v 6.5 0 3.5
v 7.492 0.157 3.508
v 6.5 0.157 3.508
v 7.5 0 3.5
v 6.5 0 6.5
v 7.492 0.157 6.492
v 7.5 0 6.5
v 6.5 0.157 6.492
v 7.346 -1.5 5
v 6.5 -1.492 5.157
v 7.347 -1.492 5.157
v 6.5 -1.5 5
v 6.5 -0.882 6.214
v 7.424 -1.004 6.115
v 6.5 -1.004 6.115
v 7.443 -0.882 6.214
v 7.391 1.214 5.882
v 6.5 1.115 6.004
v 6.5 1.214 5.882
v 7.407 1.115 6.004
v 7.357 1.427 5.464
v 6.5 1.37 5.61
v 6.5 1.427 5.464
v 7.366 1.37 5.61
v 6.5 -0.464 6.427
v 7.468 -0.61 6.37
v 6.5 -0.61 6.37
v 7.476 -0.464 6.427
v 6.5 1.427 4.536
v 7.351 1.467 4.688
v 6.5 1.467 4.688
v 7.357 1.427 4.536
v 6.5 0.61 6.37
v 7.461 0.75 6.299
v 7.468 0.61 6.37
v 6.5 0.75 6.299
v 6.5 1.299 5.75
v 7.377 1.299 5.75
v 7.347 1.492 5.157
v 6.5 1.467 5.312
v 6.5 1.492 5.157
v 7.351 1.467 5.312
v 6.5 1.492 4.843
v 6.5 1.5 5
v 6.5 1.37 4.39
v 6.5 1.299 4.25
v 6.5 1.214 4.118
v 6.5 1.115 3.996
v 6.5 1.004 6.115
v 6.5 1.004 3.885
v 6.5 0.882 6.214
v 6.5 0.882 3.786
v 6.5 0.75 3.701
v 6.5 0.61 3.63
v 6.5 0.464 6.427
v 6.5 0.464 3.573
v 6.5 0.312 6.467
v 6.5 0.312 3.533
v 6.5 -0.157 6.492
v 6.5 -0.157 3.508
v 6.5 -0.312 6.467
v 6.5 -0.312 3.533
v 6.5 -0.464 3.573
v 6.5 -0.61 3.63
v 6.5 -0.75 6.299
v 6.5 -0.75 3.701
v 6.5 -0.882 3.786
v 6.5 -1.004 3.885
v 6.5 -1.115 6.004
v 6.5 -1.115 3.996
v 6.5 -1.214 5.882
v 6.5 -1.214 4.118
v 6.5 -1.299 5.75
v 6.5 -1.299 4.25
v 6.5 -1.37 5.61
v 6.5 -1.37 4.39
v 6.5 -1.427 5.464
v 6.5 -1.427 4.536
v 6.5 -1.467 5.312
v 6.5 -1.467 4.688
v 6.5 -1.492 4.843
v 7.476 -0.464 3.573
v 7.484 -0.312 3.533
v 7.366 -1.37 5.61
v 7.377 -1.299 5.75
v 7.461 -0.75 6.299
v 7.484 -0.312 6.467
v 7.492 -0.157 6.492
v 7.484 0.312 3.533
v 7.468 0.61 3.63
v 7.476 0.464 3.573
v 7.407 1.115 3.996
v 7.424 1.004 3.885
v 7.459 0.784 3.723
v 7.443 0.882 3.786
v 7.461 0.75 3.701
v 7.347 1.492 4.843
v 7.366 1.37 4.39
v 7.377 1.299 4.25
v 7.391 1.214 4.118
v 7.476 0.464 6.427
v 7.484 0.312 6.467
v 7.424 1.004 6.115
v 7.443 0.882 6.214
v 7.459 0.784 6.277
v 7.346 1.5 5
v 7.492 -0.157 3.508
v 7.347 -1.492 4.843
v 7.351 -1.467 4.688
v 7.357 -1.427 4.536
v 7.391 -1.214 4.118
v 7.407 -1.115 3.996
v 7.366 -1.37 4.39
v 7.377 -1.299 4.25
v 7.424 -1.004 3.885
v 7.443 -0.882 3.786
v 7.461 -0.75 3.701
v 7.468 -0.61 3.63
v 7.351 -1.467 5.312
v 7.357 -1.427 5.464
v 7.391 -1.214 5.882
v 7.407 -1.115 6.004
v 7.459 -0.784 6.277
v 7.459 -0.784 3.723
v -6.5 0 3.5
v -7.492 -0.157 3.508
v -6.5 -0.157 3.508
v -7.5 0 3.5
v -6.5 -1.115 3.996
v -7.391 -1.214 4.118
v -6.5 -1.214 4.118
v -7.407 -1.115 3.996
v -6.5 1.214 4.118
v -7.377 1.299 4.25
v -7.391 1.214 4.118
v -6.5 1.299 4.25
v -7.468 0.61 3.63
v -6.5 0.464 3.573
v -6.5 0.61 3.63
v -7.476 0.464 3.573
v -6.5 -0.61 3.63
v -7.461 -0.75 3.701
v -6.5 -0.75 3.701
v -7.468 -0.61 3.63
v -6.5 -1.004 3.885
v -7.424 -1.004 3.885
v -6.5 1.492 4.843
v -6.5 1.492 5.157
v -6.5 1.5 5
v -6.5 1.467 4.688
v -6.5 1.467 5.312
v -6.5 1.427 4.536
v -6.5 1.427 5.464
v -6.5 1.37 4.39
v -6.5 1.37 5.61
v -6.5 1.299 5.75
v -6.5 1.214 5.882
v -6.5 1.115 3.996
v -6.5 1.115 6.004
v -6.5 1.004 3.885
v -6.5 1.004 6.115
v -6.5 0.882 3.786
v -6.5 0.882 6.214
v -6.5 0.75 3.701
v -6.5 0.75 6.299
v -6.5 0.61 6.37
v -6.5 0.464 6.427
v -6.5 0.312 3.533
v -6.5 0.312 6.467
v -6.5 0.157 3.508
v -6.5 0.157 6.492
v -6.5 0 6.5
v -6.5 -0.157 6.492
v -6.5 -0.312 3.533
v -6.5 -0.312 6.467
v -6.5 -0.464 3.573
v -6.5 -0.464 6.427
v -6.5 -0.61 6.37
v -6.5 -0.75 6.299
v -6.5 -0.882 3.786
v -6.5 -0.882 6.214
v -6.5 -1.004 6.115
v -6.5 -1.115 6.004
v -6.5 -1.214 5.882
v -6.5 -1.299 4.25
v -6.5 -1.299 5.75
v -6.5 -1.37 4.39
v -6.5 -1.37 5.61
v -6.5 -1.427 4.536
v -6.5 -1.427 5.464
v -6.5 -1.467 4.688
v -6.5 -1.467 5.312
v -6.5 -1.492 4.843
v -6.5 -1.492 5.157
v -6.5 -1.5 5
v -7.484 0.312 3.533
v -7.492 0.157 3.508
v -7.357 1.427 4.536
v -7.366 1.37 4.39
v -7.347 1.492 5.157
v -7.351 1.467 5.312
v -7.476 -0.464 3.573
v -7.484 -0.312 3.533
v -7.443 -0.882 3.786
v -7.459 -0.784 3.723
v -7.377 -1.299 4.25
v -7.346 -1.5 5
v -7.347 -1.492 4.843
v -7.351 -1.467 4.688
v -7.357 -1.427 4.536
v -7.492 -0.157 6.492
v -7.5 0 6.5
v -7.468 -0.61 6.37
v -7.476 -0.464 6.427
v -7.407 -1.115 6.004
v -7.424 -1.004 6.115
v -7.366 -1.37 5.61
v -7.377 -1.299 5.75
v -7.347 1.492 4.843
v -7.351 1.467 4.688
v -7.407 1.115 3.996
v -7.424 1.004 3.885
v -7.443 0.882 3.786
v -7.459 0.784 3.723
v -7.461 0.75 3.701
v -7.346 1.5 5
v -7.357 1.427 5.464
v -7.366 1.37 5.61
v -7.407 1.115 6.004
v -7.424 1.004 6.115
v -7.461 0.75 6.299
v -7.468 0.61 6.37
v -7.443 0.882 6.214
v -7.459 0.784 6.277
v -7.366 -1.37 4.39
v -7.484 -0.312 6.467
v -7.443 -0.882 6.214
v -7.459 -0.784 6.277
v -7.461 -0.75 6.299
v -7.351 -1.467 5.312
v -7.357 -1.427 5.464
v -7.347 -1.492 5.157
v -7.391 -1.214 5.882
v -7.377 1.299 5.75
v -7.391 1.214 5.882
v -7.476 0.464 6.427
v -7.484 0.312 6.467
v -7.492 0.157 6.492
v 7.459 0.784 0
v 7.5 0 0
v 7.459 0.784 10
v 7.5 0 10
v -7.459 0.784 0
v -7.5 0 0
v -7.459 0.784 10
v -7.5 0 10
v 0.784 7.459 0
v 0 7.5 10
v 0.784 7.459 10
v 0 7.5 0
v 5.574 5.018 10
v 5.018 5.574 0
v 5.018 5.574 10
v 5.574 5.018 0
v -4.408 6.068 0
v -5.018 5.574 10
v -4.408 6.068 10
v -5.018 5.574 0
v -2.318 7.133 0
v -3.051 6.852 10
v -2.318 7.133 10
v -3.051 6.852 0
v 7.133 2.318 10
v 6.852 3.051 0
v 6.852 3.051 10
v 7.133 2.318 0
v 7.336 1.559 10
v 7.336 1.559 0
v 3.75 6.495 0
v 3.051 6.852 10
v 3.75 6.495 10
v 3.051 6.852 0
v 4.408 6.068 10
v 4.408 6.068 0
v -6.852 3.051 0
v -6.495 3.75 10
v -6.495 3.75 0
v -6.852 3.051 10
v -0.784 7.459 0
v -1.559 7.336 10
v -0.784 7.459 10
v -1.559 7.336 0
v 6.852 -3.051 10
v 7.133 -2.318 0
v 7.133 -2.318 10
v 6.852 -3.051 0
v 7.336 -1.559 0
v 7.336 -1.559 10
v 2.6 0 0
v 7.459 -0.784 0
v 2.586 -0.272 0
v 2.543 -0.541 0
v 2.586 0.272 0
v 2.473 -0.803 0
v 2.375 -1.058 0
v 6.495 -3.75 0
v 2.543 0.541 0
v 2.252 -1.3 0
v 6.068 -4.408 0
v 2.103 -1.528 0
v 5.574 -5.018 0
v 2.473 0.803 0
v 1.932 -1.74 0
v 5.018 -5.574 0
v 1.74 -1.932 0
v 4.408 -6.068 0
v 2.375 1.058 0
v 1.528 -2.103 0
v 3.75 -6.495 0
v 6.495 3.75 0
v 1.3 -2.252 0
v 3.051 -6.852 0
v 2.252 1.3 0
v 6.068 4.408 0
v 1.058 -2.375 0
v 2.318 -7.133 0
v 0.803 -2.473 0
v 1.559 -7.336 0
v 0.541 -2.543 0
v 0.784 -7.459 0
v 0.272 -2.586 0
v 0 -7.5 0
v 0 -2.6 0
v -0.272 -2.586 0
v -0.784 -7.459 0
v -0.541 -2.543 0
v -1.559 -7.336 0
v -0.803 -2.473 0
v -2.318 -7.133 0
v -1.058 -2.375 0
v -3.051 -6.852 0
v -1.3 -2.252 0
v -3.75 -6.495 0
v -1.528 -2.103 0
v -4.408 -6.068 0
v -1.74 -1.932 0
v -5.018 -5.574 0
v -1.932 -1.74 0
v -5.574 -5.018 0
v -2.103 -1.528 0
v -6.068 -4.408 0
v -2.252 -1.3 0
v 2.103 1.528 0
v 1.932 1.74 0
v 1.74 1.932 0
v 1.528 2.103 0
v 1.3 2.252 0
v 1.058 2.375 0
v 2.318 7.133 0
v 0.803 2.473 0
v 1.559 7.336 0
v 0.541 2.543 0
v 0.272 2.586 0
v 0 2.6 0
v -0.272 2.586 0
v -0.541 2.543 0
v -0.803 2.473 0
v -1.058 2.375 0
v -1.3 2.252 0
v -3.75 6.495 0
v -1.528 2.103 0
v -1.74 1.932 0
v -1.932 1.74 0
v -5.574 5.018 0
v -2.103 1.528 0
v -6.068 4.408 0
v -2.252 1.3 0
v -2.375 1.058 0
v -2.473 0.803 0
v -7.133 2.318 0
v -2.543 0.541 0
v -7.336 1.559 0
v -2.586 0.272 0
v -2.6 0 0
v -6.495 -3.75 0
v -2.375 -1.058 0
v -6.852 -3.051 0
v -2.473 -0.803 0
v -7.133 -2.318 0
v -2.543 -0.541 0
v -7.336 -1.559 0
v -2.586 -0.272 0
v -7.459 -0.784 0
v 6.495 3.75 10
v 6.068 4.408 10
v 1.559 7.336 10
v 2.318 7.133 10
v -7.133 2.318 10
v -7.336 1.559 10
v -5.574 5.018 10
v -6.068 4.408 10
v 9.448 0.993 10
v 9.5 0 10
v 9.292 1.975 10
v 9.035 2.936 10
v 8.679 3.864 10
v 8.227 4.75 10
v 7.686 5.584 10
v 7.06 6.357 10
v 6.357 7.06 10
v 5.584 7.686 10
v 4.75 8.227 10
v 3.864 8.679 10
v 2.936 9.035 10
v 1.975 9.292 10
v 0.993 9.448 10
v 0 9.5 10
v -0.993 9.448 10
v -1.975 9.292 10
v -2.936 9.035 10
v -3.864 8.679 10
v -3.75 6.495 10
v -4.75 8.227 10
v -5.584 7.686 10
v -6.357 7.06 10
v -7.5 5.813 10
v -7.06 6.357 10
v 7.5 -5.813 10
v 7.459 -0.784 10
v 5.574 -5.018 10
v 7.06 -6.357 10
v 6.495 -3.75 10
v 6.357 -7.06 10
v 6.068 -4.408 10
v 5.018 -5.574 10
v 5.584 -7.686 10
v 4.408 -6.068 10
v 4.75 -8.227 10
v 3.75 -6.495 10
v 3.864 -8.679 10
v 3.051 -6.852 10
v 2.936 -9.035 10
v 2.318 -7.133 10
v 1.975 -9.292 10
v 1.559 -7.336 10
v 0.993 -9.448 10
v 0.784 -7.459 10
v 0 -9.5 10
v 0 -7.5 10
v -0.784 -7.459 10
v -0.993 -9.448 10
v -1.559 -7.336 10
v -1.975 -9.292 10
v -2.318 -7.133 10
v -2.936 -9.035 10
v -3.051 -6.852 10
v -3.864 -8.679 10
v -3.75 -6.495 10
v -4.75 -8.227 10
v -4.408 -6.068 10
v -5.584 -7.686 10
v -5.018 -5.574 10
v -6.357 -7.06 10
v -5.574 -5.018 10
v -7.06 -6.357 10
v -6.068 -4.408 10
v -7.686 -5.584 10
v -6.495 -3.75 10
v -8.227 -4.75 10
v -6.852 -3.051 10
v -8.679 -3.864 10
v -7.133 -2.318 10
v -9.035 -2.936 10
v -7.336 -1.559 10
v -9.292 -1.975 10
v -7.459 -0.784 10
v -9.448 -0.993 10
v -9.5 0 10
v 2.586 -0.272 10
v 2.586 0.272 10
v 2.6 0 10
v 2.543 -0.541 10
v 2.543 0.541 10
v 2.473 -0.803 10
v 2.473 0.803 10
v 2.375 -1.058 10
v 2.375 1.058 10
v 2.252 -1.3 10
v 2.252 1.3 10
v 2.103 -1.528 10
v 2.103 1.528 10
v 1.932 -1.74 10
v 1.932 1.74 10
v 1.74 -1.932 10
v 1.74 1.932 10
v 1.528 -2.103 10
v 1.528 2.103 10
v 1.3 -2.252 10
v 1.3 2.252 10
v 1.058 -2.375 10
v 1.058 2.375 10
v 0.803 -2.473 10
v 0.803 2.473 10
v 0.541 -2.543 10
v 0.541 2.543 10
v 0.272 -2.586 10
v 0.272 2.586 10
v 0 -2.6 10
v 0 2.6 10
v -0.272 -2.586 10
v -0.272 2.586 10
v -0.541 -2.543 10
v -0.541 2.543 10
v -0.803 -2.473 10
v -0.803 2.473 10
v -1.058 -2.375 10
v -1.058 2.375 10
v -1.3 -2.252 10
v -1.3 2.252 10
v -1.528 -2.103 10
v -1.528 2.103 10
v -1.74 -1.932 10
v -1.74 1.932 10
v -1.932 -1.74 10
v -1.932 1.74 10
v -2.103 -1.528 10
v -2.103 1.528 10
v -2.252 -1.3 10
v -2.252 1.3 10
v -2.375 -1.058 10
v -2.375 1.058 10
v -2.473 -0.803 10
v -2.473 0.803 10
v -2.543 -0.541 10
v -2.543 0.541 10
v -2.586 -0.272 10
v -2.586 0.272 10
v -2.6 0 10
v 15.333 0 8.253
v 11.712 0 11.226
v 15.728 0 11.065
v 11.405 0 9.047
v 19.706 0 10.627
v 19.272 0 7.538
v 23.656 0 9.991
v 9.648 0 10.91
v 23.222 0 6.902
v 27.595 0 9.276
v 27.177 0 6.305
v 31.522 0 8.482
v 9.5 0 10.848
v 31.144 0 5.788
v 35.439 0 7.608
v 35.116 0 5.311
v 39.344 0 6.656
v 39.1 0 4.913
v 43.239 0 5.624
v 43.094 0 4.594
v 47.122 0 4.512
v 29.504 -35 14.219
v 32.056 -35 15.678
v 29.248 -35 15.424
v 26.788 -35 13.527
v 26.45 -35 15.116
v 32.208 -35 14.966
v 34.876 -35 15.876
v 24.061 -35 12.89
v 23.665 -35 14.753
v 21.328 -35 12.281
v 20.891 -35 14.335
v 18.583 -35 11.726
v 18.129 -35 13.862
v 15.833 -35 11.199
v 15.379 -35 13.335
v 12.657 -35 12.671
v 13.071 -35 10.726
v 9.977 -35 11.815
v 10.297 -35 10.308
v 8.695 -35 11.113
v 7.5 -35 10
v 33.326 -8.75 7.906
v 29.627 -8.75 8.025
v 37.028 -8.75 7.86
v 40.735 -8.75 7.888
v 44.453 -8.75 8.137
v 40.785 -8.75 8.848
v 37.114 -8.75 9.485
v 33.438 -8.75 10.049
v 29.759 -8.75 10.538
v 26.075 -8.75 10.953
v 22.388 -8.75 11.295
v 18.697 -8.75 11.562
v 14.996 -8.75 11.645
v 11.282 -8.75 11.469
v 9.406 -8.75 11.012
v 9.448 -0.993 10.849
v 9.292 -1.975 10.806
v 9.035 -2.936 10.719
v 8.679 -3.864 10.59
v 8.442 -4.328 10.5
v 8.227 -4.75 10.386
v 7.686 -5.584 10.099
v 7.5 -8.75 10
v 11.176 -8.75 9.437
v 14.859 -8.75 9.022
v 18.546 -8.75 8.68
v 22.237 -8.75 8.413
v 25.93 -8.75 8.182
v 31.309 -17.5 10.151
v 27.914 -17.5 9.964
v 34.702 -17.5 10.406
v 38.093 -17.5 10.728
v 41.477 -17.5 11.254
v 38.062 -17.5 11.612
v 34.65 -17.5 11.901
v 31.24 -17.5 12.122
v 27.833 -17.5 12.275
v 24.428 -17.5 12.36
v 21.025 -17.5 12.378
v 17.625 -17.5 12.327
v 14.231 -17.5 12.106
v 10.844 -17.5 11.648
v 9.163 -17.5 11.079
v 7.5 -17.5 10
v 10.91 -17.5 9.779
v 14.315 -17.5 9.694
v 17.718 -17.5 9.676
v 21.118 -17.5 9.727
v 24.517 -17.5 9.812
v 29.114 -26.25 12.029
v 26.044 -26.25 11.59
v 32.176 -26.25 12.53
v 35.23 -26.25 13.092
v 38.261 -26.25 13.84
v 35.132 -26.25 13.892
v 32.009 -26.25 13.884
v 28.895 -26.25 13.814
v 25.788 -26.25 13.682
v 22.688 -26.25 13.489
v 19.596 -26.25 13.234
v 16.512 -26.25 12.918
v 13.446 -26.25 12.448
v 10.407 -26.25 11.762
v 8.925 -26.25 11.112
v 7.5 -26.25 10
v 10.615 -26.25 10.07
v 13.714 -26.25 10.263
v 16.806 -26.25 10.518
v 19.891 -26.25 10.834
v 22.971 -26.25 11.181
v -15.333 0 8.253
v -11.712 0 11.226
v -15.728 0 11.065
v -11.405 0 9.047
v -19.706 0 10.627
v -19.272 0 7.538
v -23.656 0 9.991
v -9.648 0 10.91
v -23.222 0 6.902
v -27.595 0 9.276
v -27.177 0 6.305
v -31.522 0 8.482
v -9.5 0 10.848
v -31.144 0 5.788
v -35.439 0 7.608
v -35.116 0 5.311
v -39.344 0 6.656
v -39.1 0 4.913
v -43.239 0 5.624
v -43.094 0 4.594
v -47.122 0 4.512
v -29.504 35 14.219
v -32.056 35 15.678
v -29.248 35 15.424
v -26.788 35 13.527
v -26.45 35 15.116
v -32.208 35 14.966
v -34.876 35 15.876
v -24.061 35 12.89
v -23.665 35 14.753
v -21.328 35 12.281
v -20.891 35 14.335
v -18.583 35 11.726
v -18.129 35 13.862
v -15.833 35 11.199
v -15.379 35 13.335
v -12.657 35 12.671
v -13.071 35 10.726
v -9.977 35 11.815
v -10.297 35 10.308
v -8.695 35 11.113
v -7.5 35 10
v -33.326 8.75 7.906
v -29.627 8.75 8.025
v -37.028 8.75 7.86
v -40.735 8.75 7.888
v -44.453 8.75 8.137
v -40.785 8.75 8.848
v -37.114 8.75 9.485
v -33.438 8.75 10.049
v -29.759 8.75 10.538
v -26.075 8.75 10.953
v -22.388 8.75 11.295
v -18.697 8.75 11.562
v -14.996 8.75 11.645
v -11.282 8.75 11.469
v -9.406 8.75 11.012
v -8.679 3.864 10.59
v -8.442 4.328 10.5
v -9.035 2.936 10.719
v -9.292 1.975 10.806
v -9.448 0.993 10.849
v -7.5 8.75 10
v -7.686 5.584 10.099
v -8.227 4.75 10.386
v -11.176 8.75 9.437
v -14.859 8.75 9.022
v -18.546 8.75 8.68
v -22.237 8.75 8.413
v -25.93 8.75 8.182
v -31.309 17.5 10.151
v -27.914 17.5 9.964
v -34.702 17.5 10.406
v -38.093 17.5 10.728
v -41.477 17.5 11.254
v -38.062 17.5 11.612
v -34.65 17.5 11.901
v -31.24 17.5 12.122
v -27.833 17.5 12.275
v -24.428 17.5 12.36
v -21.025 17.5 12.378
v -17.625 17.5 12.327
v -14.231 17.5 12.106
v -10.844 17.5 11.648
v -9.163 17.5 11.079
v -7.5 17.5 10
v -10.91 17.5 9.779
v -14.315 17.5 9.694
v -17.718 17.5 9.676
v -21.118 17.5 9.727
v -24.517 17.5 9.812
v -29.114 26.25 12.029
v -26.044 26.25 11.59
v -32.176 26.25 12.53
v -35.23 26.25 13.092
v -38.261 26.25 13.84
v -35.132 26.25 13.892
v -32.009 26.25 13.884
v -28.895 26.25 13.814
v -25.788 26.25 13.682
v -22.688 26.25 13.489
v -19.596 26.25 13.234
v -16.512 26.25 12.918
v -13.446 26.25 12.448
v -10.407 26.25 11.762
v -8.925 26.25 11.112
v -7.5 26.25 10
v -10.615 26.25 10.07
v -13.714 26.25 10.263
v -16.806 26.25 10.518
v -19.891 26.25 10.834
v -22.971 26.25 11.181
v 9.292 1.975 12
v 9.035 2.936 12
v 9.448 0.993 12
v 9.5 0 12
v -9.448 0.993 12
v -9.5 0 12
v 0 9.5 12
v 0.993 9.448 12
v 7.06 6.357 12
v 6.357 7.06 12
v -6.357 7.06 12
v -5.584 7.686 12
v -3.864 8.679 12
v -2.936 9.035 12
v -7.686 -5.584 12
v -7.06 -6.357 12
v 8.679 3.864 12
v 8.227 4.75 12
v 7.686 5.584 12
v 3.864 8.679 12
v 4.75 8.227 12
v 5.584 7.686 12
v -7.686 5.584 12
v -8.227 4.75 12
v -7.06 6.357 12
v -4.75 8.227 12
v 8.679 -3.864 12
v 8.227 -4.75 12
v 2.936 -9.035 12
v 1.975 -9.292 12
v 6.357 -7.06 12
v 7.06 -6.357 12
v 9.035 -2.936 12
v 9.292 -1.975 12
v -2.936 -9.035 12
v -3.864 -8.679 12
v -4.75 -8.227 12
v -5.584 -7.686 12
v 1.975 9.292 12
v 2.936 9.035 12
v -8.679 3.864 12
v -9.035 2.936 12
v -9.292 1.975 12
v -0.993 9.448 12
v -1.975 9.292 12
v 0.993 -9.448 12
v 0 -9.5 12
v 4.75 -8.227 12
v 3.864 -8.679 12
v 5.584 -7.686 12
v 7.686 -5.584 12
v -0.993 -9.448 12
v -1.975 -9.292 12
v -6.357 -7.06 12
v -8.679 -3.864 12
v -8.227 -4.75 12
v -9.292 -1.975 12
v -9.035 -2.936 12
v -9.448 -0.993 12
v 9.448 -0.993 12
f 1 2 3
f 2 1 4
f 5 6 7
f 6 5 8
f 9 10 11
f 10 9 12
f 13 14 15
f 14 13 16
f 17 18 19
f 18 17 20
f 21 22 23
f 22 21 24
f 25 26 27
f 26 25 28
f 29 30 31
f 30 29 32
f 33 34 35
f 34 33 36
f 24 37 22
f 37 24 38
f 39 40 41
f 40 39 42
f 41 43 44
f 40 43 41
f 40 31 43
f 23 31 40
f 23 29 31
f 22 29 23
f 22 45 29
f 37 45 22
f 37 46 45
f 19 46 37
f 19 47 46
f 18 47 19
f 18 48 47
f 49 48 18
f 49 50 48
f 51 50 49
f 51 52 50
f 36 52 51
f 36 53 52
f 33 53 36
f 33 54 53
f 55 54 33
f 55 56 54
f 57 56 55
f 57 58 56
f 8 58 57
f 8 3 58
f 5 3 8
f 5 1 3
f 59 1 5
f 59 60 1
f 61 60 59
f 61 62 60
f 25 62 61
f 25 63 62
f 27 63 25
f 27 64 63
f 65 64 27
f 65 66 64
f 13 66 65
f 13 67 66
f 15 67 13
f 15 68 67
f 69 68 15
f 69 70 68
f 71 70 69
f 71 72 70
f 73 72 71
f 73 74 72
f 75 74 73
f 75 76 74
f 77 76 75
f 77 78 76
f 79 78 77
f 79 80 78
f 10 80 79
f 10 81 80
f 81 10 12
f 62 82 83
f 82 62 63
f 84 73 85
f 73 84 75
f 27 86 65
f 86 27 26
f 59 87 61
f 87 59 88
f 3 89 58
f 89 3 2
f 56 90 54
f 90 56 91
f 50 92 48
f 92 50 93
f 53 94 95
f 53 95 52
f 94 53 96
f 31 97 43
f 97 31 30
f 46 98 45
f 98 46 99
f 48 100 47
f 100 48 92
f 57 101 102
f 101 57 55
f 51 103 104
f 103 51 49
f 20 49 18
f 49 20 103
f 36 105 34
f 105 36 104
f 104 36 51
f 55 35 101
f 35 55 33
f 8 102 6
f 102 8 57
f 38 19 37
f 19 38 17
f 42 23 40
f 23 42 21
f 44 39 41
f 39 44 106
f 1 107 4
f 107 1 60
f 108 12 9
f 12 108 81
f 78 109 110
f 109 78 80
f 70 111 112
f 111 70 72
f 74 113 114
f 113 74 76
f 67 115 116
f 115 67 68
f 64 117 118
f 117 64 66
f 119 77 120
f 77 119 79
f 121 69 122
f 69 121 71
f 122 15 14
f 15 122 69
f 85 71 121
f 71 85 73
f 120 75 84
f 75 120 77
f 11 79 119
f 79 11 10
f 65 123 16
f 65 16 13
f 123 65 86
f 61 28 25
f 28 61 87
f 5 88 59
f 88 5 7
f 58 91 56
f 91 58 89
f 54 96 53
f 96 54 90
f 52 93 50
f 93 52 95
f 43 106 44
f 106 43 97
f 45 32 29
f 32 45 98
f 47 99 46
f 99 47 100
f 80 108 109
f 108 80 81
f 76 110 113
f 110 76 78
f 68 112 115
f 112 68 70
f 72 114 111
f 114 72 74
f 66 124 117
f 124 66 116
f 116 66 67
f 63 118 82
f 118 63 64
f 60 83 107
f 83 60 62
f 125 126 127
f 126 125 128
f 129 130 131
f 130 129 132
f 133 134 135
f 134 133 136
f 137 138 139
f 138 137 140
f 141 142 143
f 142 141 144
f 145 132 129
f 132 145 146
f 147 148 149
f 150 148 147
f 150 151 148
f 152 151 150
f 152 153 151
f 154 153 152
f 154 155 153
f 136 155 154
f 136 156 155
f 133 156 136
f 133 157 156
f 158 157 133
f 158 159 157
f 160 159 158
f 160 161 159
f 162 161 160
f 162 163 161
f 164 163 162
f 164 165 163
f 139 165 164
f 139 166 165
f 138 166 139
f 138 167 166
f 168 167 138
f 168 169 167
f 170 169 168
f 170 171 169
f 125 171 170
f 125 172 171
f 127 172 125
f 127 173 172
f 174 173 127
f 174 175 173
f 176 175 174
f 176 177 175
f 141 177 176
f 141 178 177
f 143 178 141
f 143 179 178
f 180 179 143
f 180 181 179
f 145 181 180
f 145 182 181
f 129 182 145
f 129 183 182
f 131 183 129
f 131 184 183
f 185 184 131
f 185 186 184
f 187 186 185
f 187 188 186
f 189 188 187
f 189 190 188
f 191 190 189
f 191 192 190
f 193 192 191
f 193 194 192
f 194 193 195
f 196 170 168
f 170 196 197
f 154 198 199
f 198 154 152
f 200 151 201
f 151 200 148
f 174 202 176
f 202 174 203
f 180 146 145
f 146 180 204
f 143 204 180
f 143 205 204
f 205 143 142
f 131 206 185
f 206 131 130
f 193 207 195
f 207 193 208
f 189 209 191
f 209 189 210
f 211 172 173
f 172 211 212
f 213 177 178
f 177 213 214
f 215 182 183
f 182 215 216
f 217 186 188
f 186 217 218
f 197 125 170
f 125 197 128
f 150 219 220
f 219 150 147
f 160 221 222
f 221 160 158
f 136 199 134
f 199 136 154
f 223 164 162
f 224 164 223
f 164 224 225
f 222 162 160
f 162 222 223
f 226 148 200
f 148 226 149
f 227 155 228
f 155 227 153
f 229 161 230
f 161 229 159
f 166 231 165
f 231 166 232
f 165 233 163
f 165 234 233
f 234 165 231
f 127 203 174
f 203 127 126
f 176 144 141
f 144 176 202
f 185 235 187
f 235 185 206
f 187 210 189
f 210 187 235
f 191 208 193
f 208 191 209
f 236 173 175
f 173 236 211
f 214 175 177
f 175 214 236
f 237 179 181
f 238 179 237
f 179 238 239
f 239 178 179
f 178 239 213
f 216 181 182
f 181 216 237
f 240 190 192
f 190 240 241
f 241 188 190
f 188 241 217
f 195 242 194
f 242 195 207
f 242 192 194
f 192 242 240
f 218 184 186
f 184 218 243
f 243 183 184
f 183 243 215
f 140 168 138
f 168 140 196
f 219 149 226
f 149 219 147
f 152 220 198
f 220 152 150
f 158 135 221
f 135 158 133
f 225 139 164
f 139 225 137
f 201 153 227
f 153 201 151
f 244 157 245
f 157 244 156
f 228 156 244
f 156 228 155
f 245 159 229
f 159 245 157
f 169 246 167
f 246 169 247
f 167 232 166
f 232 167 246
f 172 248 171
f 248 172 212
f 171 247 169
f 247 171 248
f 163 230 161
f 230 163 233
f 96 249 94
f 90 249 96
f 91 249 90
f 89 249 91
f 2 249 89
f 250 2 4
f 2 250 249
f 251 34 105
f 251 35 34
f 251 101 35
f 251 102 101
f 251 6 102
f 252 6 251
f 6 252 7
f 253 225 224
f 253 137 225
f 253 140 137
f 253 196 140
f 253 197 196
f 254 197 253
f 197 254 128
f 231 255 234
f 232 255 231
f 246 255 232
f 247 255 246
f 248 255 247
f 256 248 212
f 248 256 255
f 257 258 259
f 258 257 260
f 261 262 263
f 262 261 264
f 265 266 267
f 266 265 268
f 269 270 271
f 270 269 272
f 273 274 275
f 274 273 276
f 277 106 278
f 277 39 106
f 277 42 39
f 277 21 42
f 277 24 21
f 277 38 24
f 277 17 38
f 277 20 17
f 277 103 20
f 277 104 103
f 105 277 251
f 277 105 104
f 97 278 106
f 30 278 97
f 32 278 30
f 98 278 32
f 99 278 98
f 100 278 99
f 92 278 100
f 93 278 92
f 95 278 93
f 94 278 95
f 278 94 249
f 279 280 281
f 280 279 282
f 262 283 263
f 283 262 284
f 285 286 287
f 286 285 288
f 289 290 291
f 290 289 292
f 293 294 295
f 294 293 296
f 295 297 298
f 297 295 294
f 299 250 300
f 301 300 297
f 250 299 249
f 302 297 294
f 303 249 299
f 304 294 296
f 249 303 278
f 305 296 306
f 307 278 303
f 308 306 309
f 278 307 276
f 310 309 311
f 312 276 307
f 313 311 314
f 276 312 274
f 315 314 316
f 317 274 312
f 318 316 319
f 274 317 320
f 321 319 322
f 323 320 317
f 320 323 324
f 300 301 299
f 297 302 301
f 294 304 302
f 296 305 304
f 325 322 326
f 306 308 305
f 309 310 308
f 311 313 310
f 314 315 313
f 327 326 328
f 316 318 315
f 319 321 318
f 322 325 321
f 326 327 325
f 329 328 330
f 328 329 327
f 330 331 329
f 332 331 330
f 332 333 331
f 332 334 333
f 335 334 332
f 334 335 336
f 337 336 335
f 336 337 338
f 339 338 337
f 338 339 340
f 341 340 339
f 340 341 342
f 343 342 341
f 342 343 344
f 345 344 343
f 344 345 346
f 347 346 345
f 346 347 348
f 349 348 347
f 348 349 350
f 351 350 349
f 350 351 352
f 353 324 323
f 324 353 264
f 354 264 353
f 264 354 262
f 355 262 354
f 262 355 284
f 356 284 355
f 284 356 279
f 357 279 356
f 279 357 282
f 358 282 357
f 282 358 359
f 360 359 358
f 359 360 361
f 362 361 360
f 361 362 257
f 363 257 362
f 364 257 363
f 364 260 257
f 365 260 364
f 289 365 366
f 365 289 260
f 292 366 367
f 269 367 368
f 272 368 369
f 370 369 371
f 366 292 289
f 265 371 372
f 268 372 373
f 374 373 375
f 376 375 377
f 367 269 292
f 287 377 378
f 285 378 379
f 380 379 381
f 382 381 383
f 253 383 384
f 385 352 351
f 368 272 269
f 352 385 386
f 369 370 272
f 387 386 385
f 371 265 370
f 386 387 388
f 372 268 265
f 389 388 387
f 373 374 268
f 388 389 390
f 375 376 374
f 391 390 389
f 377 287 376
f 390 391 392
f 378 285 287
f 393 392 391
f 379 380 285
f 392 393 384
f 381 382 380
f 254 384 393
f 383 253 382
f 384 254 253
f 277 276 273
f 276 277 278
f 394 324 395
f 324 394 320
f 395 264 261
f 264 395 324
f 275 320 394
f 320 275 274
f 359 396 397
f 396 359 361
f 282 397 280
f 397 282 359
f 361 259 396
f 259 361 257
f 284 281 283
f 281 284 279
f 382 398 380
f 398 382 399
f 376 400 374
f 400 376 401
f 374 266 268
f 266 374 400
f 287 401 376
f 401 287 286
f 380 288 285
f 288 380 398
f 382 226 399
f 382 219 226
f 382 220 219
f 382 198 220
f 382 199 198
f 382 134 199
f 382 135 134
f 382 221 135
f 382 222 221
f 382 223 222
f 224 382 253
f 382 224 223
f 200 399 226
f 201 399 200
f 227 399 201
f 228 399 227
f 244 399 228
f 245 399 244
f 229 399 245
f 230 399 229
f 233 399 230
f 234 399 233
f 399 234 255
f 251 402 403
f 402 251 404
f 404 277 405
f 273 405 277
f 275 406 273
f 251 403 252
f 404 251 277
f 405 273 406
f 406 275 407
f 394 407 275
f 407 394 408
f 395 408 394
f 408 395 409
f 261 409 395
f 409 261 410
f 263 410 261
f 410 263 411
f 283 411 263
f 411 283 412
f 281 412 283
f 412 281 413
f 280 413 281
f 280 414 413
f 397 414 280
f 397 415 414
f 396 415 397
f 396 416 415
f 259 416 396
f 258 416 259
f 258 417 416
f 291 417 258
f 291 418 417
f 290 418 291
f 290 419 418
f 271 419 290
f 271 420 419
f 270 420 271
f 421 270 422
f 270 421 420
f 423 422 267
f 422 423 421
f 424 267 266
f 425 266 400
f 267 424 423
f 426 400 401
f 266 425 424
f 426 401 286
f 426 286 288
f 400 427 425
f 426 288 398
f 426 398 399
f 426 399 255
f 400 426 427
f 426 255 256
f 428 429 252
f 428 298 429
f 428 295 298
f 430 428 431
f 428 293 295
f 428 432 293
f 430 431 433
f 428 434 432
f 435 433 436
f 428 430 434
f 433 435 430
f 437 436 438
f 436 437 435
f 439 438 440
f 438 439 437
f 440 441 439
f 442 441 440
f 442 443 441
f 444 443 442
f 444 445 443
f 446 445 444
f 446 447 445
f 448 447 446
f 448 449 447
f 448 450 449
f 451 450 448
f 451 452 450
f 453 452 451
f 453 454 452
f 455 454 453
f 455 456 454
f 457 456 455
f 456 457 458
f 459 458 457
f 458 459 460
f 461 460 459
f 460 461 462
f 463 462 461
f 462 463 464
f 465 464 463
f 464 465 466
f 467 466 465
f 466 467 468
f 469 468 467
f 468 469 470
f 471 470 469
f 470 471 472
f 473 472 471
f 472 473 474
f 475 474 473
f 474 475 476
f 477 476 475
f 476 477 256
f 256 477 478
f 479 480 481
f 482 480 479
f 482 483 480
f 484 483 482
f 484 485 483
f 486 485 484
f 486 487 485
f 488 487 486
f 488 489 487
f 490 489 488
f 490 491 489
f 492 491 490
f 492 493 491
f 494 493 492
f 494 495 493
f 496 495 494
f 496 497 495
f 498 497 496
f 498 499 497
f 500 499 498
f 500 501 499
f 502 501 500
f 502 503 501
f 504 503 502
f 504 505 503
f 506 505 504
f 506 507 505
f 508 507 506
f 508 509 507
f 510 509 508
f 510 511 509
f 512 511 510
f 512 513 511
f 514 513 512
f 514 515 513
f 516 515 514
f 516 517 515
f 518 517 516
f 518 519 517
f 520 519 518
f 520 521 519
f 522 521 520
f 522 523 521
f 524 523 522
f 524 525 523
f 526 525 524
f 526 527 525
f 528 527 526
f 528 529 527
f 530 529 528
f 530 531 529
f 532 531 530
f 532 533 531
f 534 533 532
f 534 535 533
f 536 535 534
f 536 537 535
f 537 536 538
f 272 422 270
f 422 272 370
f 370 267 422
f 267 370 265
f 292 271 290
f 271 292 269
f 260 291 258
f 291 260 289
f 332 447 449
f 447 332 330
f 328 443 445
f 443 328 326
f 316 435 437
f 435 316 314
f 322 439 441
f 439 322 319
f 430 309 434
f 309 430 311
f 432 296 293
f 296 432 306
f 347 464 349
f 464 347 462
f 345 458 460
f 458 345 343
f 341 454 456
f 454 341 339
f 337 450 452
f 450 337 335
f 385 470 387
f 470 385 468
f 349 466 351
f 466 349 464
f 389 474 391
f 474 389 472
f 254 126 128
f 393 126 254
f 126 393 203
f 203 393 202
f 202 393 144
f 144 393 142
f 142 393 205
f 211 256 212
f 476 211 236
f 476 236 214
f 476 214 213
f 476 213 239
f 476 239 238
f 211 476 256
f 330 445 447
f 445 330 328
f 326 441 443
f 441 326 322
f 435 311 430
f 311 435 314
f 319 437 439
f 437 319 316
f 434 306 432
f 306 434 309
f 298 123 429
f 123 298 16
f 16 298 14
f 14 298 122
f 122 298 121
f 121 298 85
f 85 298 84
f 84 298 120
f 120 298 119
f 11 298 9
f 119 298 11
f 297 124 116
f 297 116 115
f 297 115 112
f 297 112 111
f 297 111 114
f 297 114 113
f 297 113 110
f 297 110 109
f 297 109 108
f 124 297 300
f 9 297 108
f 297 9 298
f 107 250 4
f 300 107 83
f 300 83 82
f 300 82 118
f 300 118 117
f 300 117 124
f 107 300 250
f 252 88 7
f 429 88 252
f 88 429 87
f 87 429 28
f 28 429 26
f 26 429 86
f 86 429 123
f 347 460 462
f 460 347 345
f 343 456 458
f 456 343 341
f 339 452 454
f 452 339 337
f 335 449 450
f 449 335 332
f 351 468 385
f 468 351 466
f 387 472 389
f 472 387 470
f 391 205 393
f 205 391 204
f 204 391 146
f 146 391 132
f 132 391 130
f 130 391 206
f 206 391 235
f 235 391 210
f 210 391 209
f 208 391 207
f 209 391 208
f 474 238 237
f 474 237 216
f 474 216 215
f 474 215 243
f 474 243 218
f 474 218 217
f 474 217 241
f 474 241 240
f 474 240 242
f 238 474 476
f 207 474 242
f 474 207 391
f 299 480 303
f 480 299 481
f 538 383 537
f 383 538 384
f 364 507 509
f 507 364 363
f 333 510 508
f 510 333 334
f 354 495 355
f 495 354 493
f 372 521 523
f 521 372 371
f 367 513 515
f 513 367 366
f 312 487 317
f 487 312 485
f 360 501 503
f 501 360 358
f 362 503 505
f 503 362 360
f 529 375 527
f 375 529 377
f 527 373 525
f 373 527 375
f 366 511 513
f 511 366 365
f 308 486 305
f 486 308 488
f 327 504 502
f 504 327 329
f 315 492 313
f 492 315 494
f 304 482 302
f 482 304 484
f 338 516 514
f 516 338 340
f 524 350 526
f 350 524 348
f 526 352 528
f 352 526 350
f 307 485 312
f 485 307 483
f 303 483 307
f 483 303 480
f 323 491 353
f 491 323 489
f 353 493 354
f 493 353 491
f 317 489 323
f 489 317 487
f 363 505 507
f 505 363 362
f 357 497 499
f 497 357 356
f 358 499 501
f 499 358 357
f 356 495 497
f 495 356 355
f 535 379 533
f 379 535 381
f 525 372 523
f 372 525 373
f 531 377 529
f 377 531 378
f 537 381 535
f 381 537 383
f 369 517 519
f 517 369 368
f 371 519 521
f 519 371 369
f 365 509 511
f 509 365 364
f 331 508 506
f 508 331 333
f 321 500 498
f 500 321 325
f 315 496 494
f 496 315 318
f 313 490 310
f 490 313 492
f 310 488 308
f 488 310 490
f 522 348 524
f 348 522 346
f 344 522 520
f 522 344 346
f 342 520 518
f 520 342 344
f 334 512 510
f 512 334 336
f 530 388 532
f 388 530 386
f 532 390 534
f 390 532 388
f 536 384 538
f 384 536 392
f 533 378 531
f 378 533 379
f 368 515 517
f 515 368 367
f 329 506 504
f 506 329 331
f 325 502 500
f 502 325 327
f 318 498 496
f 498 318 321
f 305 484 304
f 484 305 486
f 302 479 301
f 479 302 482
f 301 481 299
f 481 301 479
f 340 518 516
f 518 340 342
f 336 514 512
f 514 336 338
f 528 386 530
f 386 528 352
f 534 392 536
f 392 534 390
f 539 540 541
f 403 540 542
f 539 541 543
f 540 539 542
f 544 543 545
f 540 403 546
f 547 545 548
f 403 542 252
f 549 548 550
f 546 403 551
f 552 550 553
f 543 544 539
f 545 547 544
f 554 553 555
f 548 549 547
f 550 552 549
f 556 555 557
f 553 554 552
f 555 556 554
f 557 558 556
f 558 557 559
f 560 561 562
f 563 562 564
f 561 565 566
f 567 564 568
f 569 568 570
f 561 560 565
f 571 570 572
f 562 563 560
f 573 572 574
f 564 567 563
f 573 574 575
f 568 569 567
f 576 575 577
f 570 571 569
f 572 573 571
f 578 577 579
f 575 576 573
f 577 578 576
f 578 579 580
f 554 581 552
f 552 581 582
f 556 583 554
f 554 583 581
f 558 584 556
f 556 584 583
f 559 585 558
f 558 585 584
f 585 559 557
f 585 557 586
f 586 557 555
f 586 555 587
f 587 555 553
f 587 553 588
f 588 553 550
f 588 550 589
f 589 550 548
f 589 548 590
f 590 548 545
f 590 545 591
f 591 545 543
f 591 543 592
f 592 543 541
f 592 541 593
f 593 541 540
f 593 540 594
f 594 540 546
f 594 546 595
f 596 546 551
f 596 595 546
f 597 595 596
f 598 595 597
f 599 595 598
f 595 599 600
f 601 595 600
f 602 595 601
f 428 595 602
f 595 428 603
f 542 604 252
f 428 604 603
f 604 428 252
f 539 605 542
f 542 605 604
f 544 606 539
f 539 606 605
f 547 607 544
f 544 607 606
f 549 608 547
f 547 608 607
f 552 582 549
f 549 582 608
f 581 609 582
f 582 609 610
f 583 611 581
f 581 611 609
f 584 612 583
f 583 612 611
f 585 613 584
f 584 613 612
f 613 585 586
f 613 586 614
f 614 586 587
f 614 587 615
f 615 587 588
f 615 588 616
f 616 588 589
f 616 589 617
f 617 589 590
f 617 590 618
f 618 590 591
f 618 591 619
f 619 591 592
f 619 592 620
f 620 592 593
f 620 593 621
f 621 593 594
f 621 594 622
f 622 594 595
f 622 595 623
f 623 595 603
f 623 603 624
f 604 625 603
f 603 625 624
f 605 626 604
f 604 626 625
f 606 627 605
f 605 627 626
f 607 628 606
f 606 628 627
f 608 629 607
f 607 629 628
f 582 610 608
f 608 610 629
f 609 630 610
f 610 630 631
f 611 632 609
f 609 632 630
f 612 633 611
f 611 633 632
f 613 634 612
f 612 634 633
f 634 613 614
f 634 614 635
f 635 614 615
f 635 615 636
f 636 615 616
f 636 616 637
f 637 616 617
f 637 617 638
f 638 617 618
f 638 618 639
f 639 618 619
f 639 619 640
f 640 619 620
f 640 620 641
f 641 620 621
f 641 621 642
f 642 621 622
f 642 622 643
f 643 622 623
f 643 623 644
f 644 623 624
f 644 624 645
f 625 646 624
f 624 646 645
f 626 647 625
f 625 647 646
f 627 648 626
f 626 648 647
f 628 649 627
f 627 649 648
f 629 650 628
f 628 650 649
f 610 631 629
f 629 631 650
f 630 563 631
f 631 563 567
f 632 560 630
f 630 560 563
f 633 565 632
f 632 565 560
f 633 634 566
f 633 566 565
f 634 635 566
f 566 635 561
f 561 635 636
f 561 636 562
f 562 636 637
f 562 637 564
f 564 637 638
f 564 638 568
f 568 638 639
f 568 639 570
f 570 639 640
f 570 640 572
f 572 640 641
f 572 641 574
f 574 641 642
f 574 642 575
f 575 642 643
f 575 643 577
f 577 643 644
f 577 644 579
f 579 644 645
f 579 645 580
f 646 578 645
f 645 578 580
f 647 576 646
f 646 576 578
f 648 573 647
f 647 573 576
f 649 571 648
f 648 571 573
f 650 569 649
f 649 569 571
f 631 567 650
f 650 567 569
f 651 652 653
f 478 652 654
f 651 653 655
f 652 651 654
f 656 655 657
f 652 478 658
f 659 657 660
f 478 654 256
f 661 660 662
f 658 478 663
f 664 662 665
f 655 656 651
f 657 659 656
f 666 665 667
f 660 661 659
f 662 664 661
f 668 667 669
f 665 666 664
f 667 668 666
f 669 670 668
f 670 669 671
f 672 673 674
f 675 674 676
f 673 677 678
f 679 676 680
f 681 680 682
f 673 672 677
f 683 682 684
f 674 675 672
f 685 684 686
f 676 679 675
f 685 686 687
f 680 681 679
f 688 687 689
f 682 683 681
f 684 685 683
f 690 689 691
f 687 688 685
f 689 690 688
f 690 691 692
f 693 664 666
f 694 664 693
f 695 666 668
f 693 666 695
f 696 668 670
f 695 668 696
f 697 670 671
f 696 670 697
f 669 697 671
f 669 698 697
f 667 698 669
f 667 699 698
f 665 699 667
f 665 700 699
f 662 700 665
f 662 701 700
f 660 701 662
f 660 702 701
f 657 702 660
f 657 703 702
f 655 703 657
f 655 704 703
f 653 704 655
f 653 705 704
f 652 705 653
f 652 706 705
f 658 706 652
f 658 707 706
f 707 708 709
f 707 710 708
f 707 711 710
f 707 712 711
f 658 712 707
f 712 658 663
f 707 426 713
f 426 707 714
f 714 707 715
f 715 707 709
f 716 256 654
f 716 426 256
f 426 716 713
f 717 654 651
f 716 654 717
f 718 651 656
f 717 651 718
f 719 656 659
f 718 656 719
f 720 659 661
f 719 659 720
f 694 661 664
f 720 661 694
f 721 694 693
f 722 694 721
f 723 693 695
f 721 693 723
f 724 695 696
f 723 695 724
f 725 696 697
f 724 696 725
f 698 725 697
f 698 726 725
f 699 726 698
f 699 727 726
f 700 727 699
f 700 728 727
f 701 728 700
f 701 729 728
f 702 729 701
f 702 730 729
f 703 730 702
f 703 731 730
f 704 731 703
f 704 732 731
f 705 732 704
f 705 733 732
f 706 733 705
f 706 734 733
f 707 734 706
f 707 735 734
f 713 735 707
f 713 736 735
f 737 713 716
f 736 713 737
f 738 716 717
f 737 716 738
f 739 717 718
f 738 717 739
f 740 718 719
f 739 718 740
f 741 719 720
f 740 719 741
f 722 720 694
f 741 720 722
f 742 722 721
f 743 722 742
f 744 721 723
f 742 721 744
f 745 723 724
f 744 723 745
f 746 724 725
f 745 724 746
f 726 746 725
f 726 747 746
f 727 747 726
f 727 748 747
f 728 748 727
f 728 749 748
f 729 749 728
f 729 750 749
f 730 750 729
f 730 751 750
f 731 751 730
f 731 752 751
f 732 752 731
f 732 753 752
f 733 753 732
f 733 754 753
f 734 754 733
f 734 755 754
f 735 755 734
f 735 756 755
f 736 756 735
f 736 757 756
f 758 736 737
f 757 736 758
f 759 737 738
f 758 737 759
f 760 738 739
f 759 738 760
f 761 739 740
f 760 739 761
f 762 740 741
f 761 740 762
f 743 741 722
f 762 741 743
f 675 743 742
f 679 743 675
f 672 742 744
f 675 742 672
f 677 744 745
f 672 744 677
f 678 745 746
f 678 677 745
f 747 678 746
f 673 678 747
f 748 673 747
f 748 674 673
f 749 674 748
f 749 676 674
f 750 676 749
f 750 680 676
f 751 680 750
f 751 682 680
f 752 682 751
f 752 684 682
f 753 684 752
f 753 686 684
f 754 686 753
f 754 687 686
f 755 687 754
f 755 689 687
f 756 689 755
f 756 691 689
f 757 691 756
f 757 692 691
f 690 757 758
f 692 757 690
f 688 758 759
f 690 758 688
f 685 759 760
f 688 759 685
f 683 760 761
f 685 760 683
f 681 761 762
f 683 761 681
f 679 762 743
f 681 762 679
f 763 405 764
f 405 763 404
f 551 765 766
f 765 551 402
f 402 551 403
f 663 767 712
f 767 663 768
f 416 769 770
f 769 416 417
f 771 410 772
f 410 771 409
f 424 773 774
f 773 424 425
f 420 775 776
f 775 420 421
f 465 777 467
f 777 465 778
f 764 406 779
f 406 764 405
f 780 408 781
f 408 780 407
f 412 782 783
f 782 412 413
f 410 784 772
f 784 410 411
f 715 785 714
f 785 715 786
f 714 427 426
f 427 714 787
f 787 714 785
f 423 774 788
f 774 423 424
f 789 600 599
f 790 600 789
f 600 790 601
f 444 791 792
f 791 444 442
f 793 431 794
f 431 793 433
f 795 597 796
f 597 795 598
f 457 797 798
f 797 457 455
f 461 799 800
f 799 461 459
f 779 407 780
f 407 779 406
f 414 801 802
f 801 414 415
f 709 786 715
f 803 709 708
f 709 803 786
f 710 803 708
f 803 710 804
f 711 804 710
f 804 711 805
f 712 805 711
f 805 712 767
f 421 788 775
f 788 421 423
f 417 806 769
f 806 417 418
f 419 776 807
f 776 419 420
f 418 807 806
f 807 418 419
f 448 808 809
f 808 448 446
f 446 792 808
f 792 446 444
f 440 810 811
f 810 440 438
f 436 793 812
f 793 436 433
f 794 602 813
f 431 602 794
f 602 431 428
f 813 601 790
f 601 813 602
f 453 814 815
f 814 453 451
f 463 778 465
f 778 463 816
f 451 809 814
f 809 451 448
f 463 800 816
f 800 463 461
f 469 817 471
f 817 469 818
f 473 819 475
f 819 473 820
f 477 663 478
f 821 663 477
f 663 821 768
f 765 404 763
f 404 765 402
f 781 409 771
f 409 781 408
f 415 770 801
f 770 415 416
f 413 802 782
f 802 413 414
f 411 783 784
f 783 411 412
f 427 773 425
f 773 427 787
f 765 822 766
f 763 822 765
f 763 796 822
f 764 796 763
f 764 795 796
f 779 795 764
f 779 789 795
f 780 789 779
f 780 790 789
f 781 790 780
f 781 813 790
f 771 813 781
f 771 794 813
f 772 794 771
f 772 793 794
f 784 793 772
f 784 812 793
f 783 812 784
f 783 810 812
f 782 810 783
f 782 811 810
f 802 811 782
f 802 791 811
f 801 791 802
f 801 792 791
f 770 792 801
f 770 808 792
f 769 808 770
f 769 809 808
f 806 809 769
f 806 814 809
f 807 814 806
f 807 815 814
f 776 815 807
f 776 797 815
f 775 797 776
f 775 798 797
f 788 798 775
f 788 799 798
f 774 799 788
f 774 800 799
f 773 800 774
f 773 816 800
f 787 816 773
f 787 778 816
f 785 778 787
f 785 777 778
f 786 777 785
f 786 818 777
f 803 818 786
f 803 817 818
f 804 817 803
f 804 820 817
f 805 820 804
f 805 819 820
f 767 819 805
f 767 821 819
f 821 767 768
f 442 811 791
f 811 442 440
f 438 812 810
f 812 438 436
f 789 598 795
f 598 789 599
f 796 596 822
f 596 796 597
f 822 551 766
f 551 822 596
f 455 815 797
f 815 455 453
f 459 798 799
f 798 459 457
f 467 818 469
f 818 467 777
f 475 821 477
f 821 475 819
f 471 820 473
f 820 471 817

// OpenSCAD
/*
 * COMPLETE MOTOR + IMPELLER ASSEMBLY
 * For CFD fluid testing and visualization
 * 
 * This model includes:
 *   - Brushless motor (2204-2206 size)
 *   - Motor shaft (5mm)
 *   - Impeller hub
 *   - 3 impeller variants (bladeless, AI-blades, hybrid)
 *   - Mounting plate
 * 
 * Usage:
 *   - Render full assembly: F6
 *   - Export for CFD: Set EXPORT_MODE = "impeller_only"
 *   - Change design: Set IMPELLER_TYPE = "bladeless" | "bladed" | "hybrid"
 */

// ============================================================================
// CONFIGURATION PARAMETERS (AI-Optimizable)
// ============================================================================

// General Settings
$fn = 60;  // Resolution for CFD export (increase to 100 for final)

// Export Mode
EXPORT_MODE = "impeller_only";  // Options: "full_assembly", "impeller_only", "motor_only"

// Impeller Type
IMPELLER_TYPE = "bladed";  // Options: "bladeless", "bladed", "hybrid"

// Motor Specifications (2204-2206 brushless)
MOTOR_DIAMETER = 28;         // mm
MOTOR_HEIGHT = 25;           // mm
MOTOR_SHAFT_DIAMETER = 5;    // mm (standard)
MOTOR_SHAFT_LENGTH = 15;     // mm (extends above motor)
MOTOR_MOUNT_PATTERN = 16;    // mm (16x16 or 19x19 common)
MOTOR_SCREW_DIAMETER = 3;    // M3 screws

// Impeller Parameters - BLADELESS
BLADELESS_OUTER_DIAMETER = 90;    // mm
BLADELESS_AIR_GAP = 0.8;          // mm (optimize: 0.6-1.2)
BLADELESS_THROAT_RATIO = 0.72;    // (optimize: 0.65-0.80)
BLADELESS_EXPANSION_ANGLE = 18;   // degrees (optimize: 12-25)
BLADELESS_RING_THICKNESS = 3;     // mm (optimize: 2-4)
BLADELESS_HEIGHT = 24;            // mm

// Impeller Parameters - BLADED
BLADED_DIAMETER = 85;
BLADED_HUB_DIAMETER = 15;         // mm (optimize: 12-20)
BLADED_BLADE_COUNT = 2;
BLADED_ROOT_CHORD = 40;
BLADED_TIP_CHORD_RATIO = 0.7;    // (optimize: 0.6-0.8)
BLADED_BLADE_THICKNESS = 2;       // mm (optimize: 1.5-3)
BLADED_BLADE_TWIST = -20;
BLADED_ATTACK_ANGLE = -8;
BLADED_BLADE_HEIGHT = 12;         // mm (optimize: 10-15)

// Hub Parameters
HUB_DIAMETER = 15;
HUB_HEIGHT = 10;
HUB_SET_SCREW_DIAMETER = 3;  // M3 set screw

// Mounting Plate
PLATE_SIZE = 50;
PLATE_THICKNESS = 3;

// ============================================================================
// MOTOR MODEL
// ============================================================================

module brushless_motor_2204() {
    color("DarkSlateGray") {
        // Motor can (bell)
        difference() {
            cylinder(h=MOTOR_HEIGHT, d=MOTOR_DIAMETER);
            
            // Hollow inside (weight reduction visualization)
            translate([0, 0, -0.5])
                cylinder(h=MOTOR_HEIGHT - 5, d=MOTOR_DIAMETER - 4);
            
            // Mounting holes
            for(i = [0:3]) {
                rotate([0, 0, i * 90])
                    translate([MOTOR_MOUNT_PATTERN/2, 0, MOTOR_HEIGHT/2])
                        rotate([90, 0, 0])
                            cylinder(h=MOTOR_DIAMETER, d=MOTOR_SCREW_DIAMETER, center=true);
            }
        }
        
        // Motor base
        translate([0, 0, -3])
            cylinder(h=3, d=MOTOR_DIAMETER - 2);
    }
    
    // Motor shaft
    color("Silver")
        translate([0, 0, MOTOR_HEIGHT])
            cylinder(h=MOTOR_SHAFT_LENGTH, d=MOTOR_SHAFT_DIAMETER);
    
    // Shaft tip (for hub attachment)
    color("Silver")
        translate([0, 0, MOTOR_HEIGHT + MOTOR_SHAFT_LENGTH])
            cylinder(h=2, d=MOTOR_SHAFT_DIAMETER - 0.5);
}

// ============================================================================
// IMPELLER HUB
// ============================================================================

module impeller_hub() {
    color("Gray")
    difference() {
        // Hub body
        cylinder(h=HUB_HEIGHT, d=HUB_DIAMETER);
        
        // Shaft hole (5mm + 0.2mm clearance)
        translate([0, 0, -0.5])
            cylinder(h=HUB_HEIGHT + 1, d=MOTOR_SHAFT_DIAMETER + 0.2);
        
        // Set screw holes (2x for balance)
        for(i = [0:1]) {
            rotate([0, 0, i * 180])
                translate([HUB_DIAMETER/2 - 1, 0, HUB_HEIGHT/2])
                    rotate([0, 90, 0])
                        cylinder(h=5, d=HUB_SET_SCREW_DIAMETER);
        }
    }
}

// ============================================================================
// BLADELESS IMPELLER (Dyson-style)
// ============================================================================

module bladeless_impeller() {
    outer_r = BLADELESS_OUTER_DIAMETER / 2;
    throat_r = outer_r * BLADELESS_THROAT_RATIO;
    gap = BLADELESS_AIR_GAP;
    
    color("SkyBlue", 0.7)
    difference() {
        // Outer ring
        rotate_extrude()
            translate([outer_r - BLADELESS_RING_THICKNESS/2, BLADELESS_HEIGHT/2, 0])
                circle(d=BLADELESS_RING_THICKNESS + BLADELESS_HEIGHT);
        
        // Inner air gap (critical for Coanda effect)
        rotate_extrude()
            translate([outer_r - gap - BLADELESS_RING_THICKNESS/2, BLADELESS_HEIGHT/2, 0])
                circle(d=BLADELESS_RING_THICKNESS + BLADELESS_HEIGHT - 2*gap);
    }
    
    // Base plate (connects to hub)
    color("SkyBlue", 0.7)
    translate([0, 0, -2])
        difference() {
            cylinder(h=2, d=outer_r * 2);
            translate([0, 0, -0.5])
                cylinder(h=3, d=HUB_DIAMETER + 1);
        }
    
    // Air inlet (bell-shaped for smooth flow)
    color("SkyBlue", 0.7)
    translate([0, 0, -2]) {
        difference() {
            cylinder(h=15, d1=throat_r * 2, d2=outer_r * 1.8);
            translate([0, 0, -0.5])
                cylinder(h=16, d1=throat_r * 2 - 3, d2=outer_r * 1.8 - 3);
        }
    }
}

// ============================================================================
// AI-OPTIMIZED BLADED IMPELLER (NACA 2412 profile)
// ============================================================================

module naca_2412_blade(chord, height, twist_angle, attack_angle) {
    // Simplified NACA 2412 airfoil profile
    // Using parametric approximation for 3D printing
    
    color("LightSteelBlue", 0.8)
    linear_extrude(height=height, twist=twist_angle, scale=BLADED_TIP_CHORD_RATIO) {
        rotate([0, 0, attack_angle])
        polygon([
            // Upper surface (cambered)
            [0, 0],
            [chord * 0.05, chord * 0.03],
            [chord * 0.1, chord * 0.045],
            [chord * 0.2, chord * 0.055],
            [chord * 0.3, chord * 0.058],
            [chord * 0.4, chord * 0.056],
            [chord * 0.5, chord * 0.052],
            [chord * 0.6, chord * 0.046],
            [chord * 0.7, chord * 0.038],
            [chord * 0.8, chord * 0.028],
            [chord * 0.9, chord * 0.016],
            [chord * 1.0, chord * 0.002],
            // Lower surface (less cambered)
            [chord * 0.9, -chord * 0.010],
            [chord * 0.8, -chord * 0.016],
            [chord * 0.7, -chord * 0.020],
            [chord * 0.6, -chord * 0.022],
            [chord * 0.5, -chord * 0.023],
            [chord * 0.4, -chord * 0.022],
            [chord * 0.3, -chord * 0.020],
            [chord * 0.2, -chord * 0.016],
            [chord * 0.1, -chord * 0.010],
            [chord * 0.05, -chord * 0.005],
        ]);
    }
}

module bladed_impeller() {
    // Blades
    for(i = [0 : BLADED_BLADE_COUNT - 1]) {
        rotate([0, 0, i * (360 / BLADED_BLADE_COUNT)])
            translate([BLADED_HUB_DIAMETER/2, 0, 0])
                rotate([90, 0, 0])
                    naca_2412_blade(
                        BLADED_ROOT_CHORD, 
                        (BLADED_DIAMETER - BLADED_HUB_DIAMETER) / 2,
                        BLADED_BLADE_TWIST,
                        BLADED_ATTACK_ANGLE
                    );
    }
    
    // Hub disk (connects blades)
    color("LightSteelBlue", 0.8)
    cylinder(h=2, d=BLADED_HUB_DIAMETER + 4);
}

// ============================================================================
// HYBRID IMPELLER (Blades inside bladeless ring)
// ============================================================================

module hybrid_impeller() {
    // Outer bladeless ring
    bladeless_impeller();
    
    // Inner bladed impeller (scaled down to fit)
    scale([0.85, 0.85, 1])
        bladed_impeller();
}

// ============================================================================
// MOUNTING PLATE
// ============================================================================

module mounting_plate() {
    color("DimGray")
    difference() {
        // Base plate
        translate([-PLATE_SIZE/2, -PLATE_SIZE/2, 0])
            cube([PLATE_SIZE, PLATE_SIZE, PLATE_THICKNESS]);
        
        // Center hole for motor shaft
        translate([0, 0, -0.5])
            cylinder(h=PLATE_THICKNESS + 1, d=MOTOR_DIAMETER + 2);
        
        // Motor mounting holes
        for(i = [0:3]) {
            rotate([0, 0, i * 90])
                translate([MOTOR_MOUNT_PATTERN/2, 0, -0.5])
                    cylinder(h=PLATE_THICKNESS + 1, d=MOTOR_SCREW_DIAMETER);
        }
    }
}

// ============================================================================
// COMPLETE ASSEMBLY
// ============================================================================

module complete_assembly() {
    // Mounting plate (bottom)
    translate([0, 0, -PLATE_THICKNESS])
        mounting_plate();
    
    // Motor
    translate([0, 0, 0])
        brushless_motor_2204();
    
    // Hub (on shaft)
    translate([0, 0, MOTOR_HEIGHT + MOTOR_SHAFT_LENGTH - 2])
        impeller_hub();
    
    // Impeller (on hub)
    translate([0, 0, MOTOR_HEIGHT + MOTOR_SHAFT_LENGTH + HUB_HEIGHT]) {
        if (IMPELLER_TYPE == "bladeless") {
            bladeless_impeller();
        } else if (IMPELLER_TYPE == "bladed") {
            bladed_impeller();
        } else if (IMPELLER_TYPE == "hybrid") {
            hybrid_impeller();
        }
    }
}

// ============================================================================
// RENDER BASED ON EXPORT MODE
// ============================================================================

if (EXPORT_MODE == "full_assembly") {
    complete_assembly();
} 
else if (EXPORT_MODE == "impeller_only") {
    // For CFD testing - impeller + hub only
    impeller_hub();
    translate([0, 0, HUB_HEIGHT]) {
        if (IMPELLER_TYPE == "bladeless") {
            bladeless_impeller();
        } else if (IMPELLER_TYPE == "bladed") {
            bladed_impeller();
        } else if (IMPELLER_TYPE == "hybrid") {
            hybrid_impeller();
        }
    }
}
else if (EXPORT_MODE == "motor_only") {
    brushless_motor_2204();
}

// ============================================================================
// ANNOTATIONS FOR VISUALIZATION
// ============================================================================

// Uncomment to show dimensions
/*
color("Red", 0.3)
translate([BLADED_DIAMETER/2 + 10, 0, 20])
    text(str("Ø", BLADED_DIAMETER, "mm"), size=5, halign="left");

color("Green", 0.3)
translate([0, BLADED_DIAMETER/2 + 10, 20])
    text(str(BLADED_BLADE_COUNT, " blades"), size=5, halign="center");
*/

// ============================================================================
// EXPORT NOTES
// ============================================================================

/*
 * TO EXPORT FOR CFD TESTING:
 * 
 * 1. Set EXPORT_MODE = "impeller_only"
 * 2. Set IMPELLER_TYPE = "bladeless" (or "bladed" or "hybrid")
 * 3. Press F6 to render
 * 4. File → Export → Export as STL
 * 5. Use filename: impeller_bladeless_fn60.stl
 * 
 * FOR OPTIMIZATION:
 * - Modify parameters at top (marked with "optimize:")
 * - Re-render and export
 * - Upload to SimScale for CFD
 * - Compare results
 * 
 * RECOMMENDED CFD SETTINGS:
 * - Solver: k-omega SST
 * - RPM: 5000, 7000, 9000
 * - Mesh: 3-5M cells
 * - Boundary: Rotating zone on impeller
 */
